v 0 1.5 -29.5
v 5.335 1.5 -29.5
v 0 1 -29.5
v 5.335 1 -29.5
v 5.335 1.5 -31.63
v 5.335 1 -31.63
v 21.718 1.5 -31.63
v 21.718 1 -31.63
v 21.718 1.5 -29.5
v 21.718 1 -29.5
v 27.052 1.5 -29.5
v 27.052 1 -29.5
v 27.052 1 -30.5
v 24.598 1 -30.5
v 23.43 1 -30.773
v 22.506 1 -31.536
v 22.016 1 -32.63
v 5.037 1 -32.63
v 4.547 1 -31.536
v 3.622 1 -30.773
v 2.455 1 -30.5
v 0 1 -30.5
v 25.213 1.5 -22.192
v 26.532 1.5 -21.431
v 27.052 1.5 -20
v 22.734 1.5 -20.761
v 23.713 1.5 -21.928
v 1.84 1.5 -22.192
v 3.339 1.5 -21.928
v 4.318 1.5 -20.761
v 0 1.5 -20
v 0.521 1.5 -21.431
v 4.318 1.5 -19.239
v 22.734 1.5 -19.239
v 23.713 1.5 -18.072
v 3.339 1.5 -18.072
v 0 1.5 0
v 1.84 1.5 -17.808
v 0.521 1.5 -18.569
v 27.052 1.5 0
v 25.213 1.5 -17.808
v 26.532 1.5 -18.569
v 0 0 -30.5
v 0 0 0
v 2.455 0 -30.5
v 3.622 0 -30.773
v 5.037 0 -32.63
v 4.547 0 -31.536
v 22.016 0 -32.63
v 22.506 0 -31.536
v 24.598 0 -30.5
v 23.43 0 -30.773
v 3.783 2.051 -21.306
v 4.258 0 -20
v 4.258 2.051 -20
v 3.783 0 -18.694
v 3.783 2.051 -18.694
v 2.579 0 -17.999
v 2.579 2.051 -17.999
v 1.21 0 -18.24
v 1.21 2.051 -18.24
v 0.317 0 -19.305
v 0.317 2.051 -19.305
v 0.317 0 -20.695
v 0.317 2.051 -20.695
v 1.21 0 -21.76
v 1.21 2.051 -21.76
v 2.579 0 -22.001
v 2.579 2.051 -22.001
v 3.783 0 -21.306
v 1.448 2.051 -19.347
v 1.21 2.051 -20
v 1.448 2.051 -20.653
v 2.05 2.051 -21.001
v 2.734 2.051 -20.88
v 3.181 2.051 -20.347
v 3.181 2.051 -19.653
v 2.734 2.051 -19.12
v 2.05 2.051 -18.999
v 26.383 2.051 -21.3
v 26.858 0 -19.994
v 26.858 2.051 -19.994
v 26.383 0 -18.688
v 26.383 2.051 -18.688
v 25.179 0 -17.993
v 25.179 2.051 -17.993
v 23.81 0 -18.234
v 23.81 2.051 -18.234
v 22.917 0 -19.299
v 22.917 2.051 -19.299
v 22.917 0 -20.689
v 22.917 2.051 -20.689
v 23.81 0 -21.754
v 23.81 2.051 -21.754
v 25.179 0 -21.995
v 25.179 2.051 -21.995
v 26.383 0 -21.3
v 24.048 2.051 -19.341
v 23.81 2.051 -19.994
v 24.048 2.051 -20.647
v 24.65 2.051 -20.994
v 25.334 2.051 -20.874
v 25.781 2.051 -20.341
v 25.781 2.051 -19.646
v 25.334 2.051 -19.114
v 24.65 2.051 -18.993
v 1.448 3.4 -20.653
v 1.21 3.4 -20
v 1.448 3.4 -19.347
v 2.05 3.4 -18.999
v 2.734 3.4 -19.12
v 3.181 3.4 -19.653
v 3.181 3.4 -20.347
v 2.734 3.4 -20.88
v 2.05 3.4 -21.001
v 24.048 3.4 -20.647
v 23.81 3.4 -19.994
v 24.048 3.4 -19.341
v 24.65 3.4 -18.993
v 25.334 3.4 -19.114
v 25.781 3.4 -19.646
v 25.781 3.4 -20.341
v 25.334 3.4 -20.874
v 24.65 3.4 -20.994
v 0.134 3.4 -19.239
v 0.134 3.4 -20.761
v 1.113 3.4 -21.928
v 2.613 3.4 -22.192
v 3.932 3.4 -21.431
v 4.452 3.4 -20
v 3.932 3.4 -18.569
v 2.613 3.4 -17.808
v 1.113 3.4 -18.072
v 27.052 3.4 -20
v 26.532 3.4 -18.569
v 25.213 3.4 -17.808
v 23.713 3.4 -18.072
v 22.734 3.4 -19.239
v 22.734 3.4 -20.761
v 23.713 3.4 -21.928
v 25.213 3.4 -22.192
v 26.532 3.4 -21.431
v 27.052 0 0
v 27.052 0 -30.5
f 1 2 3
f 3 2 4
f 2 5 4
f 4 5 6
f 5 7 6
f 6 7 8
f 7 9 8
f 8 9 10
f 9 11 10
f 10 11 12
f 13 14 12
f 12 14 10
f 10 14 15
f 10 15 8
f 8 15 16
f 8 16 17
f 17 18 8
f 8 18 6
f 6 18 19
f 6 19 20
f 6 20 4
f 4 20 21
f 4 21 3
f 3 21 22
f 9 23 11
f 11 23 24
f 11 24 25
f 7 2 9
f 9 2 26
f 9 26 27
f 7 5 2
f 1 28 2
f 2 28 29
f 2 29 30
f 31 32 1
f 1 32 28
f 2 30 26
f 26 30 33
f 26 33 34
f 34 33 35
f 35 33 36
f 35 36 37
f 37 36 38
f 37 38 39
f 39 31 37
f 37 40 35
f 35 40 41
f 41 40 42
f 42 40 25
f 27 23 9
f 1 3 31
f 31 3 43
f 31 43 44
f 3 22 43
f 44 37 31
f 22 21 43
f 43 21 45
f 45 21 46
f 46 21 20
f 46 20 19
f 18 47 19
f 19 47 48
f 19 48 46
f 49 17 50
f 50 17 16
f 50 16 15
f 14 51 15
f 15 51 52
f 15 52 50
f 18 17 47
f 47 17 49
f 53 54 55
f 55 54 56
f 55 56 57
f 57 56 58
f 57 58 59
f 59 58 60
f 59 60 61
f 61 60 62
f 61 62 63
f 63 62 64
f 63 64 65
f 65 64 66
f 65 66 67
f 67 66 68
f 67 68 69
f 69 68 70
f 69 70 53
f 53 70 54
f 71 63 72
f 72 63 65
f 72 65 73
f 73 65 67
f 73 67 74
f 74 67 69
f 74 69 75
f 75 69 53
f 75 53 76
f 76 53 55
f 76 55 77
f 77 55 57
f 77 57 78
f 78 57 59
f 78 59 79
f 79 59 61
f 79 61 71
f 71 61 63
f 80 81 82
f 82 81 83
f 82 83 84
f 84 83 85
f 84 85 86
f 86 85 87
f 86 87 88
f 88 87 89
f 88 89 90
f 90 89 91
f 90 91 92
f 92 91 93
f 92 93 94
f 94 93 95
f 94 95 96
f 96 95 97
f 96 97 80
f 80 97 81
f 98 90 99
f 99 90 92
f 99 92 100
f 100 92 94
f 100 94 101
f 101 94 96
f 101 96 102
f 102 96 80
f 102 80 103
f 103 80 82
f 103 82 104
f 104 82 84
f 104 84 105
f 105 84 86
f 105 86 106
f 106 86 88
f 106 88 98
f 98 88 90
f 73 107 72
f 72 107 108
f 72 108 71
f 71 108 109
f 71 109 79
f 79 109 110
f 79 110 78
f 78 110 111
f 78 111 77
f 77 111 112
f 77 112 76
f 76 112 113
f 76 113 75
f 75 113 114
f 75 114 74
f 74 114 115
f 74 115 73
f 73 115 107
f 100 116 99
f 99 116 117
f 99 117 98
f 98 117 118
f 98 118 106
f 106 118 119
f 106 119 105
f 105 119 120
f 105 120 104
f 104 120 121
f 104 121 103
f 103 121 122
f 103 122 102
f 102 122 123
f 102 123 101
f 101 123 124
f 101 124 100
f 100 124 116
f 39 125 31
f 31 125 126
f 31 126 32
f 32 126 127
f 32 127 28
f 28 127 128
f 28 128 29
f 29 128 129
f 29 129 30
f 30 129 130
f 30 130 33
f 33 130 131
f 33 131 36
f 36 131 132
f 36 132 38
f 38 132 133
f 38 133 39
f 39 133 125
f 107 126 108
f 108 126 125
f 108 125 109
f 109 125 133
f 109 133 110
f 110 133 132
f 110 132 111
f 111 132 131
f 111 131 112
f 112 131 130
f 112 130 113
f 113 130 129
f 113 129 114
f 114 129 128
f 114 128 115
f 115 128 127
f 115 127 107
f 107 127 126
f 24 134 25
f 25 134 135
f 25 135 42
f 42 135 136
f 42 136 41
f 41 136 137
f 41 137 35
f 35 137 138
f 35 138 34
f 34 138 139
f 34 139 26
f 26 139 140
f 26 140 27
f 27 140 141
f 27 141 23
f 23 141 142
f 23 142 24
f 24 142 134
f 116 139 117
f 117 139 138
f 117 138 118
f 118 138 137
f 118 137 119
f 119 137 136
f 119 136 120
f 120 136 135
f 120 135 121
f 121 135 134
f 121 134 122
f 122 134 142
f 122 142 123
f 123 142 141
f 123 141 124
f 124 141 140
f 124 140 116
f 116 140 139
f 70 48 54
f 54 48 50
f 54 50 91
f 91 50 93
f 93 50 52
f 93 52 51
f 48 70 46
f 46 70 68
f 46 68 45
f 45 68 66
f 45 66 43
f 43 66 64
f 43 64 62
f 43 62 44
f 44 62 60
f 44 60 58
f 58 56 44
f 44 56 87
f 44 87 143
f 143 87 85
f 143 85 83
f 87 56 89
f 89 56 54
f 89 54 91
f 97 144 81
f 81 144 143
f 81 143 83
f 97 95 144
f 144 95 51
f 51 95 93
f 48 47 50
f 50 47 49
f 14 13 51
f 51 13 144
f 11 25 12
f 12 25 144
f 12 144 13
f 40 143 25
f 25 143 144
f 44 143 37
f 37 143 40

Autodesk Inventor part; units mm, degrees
ref_plane "YZ Plane" through (0, 0, 0) normal (1, 0, 0) x (0, 1, 0)
ref_plane "XZ Plane" through (0, 0, 0) normal (0, 1, 0) x (-1, 0, 0)
ref_plane "XY Plane" through (0, 0, 0) normal (0, 0, 1) x (1, 0, 0)
sketch "Sketch1" plane through (0, 0, 0) normal (0, 1, 0) x (-1, 0, 0)
  line L0 (-27.0524, -30.5) -> (0, -30.5)
  line L1 (-27.0524, -30.5) -> (-27.0524, 0)
  line L2 (-27.0524, 0) -> (0, 0)
  line L3 (0, 0) -> (0, -30.5)
  point P0 (-13.5262, -30.5)
extrude "Extrusion1" add sketch "Sketch1" along normal blind 1.5
sketch "Sketch2" plane through (0, 0, 0) normal (0, -1, 0) x (1, 0, 0)
  circle A0 centre (2.2262, -20) radius 2.2262
  circle A1 centre (24.8262, -20) radius 2.2262
  point P0 (0, 0)
  point P1 (13.5262, -30.5)
  point P2 (27.0524, -30.5)
extrude "Extrusion2" add sketch "Sketch2" against normal blind 3.4
sketch "Sketch3" plane through (0, 0, 0) normal (0, -1, 0) x (1, 0, 0)
  circle A0 centre (24.8262, -19.9938) radius 1.016
  circle A1 centre (2.2262, -20) radius 1.016
  point P0 (0, 0)
  point P1 (13.5262, 0)
  point P2 (1.4262, -20)
  point P3 (0, -30.5)
  dimension "d4" = 2.032
extrude "Extrusion3" cut sketch "Sketch3" against normal up to surface (3.4 mm away)
sketch "Sketch4" plane through (0, 0, 0) normal (0, -1, 0) x (1, 0, 0)
  circle A0 centre (24.8262, -19.9938) radius 2.032
  circle A1 centre (2.2262, -20) radius 2.032
  line L0 (2.2262, -20) -> (0, -20)
  line L1 (0, -20) -> (0, -30.5)
  line L2 (0, -30.5) -> (0, 0) projected
  point P0 (13.5262, 0)
  dimension "d7" = 4.064
  dimension "d8" = 4.064
extrude "Extrusion4" cut sketch "Sketch4" against normal blind 2.051
sketch "Sketch13" plane through (0, 1.5, 0) normal (0, 1, 0) x (1, 0, 0)
  arc A0 (22.0156, 32.63) -> (24.5977, 30.5) centre (24.5977, 33.13) ccw
  arc A1 (2.4547, 30.5) -> (5.0367, 32.63) centre (2.4547, 33.13) ccw
  line L0 (22.0156, 32.63) -> (5.0367, 32.63)
  arc A2 (2.4547, 30.5) -> (5.0367, 32.63) centre (2.4547, 33.13) ccw
  line L1 (27.0524, 20) -> (27.0524, 30.5) projected
  line L2 (2.4547, 30.5) -> (24.5977, 30.5)
  line L3 (27.0524, 30.5) -> (0, 30.5) projected
  point P0 (0, 0)
  point P1 (13.5262, 31)
  point P2 (24.5977, 30.5)
extrude "Extrusion11" add sketch "Sketch13" against normal up to surface (1.5 mm away)
sketch "Sketch14" plane through (0, 1.5, 0) normal (0, 1, 0) x (1, 0, 0)
  line L0 (27.0478, 29.5) -> (21.7177, 29.5)
  line L1 (21.7177, 31.63) -> (5.3347, 31.63)
  line L2 (21.7177, 31.63) -> (21.7177, 29.5)
  line L3 (21.7177, 31.63) -> (5.3347, 31.63)
  line L4 (5.3347, 31.63) -> (5.3347, 29.5)
  line L5 (0, 29.5) -> (4.5847, 29.5)
  line L6 (5.3347, 29.5) -> (4.5847, 29.5)
  line L7 (4.5847, 29.5) -> (0, 29.5)
  line L8 (2.4547, 30.5) -> (0, 30.5)
  line L9 (0, 29.5) -> (0, 30.5)
  line L10 (0, 30.5) -> (2.4547, 30.5)
  arc A0 (2.4547, 30.5) -> (5.0367, 32.63) centre (2.4547, 33.13) ccw
  line L11 (5.0367, 32.63) -> (22.0156, 32.63)
  line L12 (5.0367, 32.63) -> (22.0156, 32.63)
  line L13 (27.0524, 30.5) -> (27.0524, 29.5)
  line L14 (27.0524, 29.5) -> (27.0524, 30.5)
  line L15 (27.0524, 30.5) -> (24.5977, 30.5)
  arc A1 (22.0156, 32.63) -> (24.5977, 30.5) centre (24.5977, 33.13) ccw
  arc A2 (22.0156, 32.63) -> (24.5977, 30.5) centre (24.5977, 33.13) ccw
  arc A3 (2.4547, 30.5) -> (5.0367, 32.63) centre (2.4547, 33.13) ccw
  line L16 (27.0524, 30.5) -> (24.5977, 30.5) projected
  line L17 (0, 29.5) -> (5.3347, 29.5)
  line L18 (5.3347, 31.63) -> (5.3347, 29.5)
  line L19 (5.3347, 31.63) -> (21.7177, 31.63)
  line L20 (21.7177, 29.5) -> (21.7177, 31.63)
  line L21 (21.7177, 29.5) -> (27.0524, 29.5)
  line L22 (27.0524, 0) -> (27.0524, 30.5) projected
  line L23 (27.0524, 29.5) -> (27.0524, 30.5)
  arc A4 (22.0156, 32.63) -> (24.5977, 30.5) centre (24.5977, 33.13) ccw projected
  line L24 (27.0524, 30.5) -> (24.5977, 30.5)
  line L25 (22.0156, 32.63) -> (5.0367, 32.63) projected
  line L26 (22.0156, 32.63) -> (5.0367, 32.63)
  line L27 (2.4547, 30.5) -> (0, 30.5) projected
  line L28 (2.4547, 30.5) -> (0, 30.5)
  line L29 (0, 30.5) -> (0, 29.5)
  arc A5 (2.4547, 30.5) -> (5.0367, 32.63) centre (2.4547, 33.13) ccw
  arc A6 (22.0156, 32.63) -> (24.5977, 30.5) centre (24.5977, 33.13) ccw
  point P0 (0, 0)
  point P1 (13.5262, 31)
extrude "Extrusion12" cut sketch "Sketch14" against normal blind 0.5
properties part number "ExpansionCard_SelfTapping_Lid"
